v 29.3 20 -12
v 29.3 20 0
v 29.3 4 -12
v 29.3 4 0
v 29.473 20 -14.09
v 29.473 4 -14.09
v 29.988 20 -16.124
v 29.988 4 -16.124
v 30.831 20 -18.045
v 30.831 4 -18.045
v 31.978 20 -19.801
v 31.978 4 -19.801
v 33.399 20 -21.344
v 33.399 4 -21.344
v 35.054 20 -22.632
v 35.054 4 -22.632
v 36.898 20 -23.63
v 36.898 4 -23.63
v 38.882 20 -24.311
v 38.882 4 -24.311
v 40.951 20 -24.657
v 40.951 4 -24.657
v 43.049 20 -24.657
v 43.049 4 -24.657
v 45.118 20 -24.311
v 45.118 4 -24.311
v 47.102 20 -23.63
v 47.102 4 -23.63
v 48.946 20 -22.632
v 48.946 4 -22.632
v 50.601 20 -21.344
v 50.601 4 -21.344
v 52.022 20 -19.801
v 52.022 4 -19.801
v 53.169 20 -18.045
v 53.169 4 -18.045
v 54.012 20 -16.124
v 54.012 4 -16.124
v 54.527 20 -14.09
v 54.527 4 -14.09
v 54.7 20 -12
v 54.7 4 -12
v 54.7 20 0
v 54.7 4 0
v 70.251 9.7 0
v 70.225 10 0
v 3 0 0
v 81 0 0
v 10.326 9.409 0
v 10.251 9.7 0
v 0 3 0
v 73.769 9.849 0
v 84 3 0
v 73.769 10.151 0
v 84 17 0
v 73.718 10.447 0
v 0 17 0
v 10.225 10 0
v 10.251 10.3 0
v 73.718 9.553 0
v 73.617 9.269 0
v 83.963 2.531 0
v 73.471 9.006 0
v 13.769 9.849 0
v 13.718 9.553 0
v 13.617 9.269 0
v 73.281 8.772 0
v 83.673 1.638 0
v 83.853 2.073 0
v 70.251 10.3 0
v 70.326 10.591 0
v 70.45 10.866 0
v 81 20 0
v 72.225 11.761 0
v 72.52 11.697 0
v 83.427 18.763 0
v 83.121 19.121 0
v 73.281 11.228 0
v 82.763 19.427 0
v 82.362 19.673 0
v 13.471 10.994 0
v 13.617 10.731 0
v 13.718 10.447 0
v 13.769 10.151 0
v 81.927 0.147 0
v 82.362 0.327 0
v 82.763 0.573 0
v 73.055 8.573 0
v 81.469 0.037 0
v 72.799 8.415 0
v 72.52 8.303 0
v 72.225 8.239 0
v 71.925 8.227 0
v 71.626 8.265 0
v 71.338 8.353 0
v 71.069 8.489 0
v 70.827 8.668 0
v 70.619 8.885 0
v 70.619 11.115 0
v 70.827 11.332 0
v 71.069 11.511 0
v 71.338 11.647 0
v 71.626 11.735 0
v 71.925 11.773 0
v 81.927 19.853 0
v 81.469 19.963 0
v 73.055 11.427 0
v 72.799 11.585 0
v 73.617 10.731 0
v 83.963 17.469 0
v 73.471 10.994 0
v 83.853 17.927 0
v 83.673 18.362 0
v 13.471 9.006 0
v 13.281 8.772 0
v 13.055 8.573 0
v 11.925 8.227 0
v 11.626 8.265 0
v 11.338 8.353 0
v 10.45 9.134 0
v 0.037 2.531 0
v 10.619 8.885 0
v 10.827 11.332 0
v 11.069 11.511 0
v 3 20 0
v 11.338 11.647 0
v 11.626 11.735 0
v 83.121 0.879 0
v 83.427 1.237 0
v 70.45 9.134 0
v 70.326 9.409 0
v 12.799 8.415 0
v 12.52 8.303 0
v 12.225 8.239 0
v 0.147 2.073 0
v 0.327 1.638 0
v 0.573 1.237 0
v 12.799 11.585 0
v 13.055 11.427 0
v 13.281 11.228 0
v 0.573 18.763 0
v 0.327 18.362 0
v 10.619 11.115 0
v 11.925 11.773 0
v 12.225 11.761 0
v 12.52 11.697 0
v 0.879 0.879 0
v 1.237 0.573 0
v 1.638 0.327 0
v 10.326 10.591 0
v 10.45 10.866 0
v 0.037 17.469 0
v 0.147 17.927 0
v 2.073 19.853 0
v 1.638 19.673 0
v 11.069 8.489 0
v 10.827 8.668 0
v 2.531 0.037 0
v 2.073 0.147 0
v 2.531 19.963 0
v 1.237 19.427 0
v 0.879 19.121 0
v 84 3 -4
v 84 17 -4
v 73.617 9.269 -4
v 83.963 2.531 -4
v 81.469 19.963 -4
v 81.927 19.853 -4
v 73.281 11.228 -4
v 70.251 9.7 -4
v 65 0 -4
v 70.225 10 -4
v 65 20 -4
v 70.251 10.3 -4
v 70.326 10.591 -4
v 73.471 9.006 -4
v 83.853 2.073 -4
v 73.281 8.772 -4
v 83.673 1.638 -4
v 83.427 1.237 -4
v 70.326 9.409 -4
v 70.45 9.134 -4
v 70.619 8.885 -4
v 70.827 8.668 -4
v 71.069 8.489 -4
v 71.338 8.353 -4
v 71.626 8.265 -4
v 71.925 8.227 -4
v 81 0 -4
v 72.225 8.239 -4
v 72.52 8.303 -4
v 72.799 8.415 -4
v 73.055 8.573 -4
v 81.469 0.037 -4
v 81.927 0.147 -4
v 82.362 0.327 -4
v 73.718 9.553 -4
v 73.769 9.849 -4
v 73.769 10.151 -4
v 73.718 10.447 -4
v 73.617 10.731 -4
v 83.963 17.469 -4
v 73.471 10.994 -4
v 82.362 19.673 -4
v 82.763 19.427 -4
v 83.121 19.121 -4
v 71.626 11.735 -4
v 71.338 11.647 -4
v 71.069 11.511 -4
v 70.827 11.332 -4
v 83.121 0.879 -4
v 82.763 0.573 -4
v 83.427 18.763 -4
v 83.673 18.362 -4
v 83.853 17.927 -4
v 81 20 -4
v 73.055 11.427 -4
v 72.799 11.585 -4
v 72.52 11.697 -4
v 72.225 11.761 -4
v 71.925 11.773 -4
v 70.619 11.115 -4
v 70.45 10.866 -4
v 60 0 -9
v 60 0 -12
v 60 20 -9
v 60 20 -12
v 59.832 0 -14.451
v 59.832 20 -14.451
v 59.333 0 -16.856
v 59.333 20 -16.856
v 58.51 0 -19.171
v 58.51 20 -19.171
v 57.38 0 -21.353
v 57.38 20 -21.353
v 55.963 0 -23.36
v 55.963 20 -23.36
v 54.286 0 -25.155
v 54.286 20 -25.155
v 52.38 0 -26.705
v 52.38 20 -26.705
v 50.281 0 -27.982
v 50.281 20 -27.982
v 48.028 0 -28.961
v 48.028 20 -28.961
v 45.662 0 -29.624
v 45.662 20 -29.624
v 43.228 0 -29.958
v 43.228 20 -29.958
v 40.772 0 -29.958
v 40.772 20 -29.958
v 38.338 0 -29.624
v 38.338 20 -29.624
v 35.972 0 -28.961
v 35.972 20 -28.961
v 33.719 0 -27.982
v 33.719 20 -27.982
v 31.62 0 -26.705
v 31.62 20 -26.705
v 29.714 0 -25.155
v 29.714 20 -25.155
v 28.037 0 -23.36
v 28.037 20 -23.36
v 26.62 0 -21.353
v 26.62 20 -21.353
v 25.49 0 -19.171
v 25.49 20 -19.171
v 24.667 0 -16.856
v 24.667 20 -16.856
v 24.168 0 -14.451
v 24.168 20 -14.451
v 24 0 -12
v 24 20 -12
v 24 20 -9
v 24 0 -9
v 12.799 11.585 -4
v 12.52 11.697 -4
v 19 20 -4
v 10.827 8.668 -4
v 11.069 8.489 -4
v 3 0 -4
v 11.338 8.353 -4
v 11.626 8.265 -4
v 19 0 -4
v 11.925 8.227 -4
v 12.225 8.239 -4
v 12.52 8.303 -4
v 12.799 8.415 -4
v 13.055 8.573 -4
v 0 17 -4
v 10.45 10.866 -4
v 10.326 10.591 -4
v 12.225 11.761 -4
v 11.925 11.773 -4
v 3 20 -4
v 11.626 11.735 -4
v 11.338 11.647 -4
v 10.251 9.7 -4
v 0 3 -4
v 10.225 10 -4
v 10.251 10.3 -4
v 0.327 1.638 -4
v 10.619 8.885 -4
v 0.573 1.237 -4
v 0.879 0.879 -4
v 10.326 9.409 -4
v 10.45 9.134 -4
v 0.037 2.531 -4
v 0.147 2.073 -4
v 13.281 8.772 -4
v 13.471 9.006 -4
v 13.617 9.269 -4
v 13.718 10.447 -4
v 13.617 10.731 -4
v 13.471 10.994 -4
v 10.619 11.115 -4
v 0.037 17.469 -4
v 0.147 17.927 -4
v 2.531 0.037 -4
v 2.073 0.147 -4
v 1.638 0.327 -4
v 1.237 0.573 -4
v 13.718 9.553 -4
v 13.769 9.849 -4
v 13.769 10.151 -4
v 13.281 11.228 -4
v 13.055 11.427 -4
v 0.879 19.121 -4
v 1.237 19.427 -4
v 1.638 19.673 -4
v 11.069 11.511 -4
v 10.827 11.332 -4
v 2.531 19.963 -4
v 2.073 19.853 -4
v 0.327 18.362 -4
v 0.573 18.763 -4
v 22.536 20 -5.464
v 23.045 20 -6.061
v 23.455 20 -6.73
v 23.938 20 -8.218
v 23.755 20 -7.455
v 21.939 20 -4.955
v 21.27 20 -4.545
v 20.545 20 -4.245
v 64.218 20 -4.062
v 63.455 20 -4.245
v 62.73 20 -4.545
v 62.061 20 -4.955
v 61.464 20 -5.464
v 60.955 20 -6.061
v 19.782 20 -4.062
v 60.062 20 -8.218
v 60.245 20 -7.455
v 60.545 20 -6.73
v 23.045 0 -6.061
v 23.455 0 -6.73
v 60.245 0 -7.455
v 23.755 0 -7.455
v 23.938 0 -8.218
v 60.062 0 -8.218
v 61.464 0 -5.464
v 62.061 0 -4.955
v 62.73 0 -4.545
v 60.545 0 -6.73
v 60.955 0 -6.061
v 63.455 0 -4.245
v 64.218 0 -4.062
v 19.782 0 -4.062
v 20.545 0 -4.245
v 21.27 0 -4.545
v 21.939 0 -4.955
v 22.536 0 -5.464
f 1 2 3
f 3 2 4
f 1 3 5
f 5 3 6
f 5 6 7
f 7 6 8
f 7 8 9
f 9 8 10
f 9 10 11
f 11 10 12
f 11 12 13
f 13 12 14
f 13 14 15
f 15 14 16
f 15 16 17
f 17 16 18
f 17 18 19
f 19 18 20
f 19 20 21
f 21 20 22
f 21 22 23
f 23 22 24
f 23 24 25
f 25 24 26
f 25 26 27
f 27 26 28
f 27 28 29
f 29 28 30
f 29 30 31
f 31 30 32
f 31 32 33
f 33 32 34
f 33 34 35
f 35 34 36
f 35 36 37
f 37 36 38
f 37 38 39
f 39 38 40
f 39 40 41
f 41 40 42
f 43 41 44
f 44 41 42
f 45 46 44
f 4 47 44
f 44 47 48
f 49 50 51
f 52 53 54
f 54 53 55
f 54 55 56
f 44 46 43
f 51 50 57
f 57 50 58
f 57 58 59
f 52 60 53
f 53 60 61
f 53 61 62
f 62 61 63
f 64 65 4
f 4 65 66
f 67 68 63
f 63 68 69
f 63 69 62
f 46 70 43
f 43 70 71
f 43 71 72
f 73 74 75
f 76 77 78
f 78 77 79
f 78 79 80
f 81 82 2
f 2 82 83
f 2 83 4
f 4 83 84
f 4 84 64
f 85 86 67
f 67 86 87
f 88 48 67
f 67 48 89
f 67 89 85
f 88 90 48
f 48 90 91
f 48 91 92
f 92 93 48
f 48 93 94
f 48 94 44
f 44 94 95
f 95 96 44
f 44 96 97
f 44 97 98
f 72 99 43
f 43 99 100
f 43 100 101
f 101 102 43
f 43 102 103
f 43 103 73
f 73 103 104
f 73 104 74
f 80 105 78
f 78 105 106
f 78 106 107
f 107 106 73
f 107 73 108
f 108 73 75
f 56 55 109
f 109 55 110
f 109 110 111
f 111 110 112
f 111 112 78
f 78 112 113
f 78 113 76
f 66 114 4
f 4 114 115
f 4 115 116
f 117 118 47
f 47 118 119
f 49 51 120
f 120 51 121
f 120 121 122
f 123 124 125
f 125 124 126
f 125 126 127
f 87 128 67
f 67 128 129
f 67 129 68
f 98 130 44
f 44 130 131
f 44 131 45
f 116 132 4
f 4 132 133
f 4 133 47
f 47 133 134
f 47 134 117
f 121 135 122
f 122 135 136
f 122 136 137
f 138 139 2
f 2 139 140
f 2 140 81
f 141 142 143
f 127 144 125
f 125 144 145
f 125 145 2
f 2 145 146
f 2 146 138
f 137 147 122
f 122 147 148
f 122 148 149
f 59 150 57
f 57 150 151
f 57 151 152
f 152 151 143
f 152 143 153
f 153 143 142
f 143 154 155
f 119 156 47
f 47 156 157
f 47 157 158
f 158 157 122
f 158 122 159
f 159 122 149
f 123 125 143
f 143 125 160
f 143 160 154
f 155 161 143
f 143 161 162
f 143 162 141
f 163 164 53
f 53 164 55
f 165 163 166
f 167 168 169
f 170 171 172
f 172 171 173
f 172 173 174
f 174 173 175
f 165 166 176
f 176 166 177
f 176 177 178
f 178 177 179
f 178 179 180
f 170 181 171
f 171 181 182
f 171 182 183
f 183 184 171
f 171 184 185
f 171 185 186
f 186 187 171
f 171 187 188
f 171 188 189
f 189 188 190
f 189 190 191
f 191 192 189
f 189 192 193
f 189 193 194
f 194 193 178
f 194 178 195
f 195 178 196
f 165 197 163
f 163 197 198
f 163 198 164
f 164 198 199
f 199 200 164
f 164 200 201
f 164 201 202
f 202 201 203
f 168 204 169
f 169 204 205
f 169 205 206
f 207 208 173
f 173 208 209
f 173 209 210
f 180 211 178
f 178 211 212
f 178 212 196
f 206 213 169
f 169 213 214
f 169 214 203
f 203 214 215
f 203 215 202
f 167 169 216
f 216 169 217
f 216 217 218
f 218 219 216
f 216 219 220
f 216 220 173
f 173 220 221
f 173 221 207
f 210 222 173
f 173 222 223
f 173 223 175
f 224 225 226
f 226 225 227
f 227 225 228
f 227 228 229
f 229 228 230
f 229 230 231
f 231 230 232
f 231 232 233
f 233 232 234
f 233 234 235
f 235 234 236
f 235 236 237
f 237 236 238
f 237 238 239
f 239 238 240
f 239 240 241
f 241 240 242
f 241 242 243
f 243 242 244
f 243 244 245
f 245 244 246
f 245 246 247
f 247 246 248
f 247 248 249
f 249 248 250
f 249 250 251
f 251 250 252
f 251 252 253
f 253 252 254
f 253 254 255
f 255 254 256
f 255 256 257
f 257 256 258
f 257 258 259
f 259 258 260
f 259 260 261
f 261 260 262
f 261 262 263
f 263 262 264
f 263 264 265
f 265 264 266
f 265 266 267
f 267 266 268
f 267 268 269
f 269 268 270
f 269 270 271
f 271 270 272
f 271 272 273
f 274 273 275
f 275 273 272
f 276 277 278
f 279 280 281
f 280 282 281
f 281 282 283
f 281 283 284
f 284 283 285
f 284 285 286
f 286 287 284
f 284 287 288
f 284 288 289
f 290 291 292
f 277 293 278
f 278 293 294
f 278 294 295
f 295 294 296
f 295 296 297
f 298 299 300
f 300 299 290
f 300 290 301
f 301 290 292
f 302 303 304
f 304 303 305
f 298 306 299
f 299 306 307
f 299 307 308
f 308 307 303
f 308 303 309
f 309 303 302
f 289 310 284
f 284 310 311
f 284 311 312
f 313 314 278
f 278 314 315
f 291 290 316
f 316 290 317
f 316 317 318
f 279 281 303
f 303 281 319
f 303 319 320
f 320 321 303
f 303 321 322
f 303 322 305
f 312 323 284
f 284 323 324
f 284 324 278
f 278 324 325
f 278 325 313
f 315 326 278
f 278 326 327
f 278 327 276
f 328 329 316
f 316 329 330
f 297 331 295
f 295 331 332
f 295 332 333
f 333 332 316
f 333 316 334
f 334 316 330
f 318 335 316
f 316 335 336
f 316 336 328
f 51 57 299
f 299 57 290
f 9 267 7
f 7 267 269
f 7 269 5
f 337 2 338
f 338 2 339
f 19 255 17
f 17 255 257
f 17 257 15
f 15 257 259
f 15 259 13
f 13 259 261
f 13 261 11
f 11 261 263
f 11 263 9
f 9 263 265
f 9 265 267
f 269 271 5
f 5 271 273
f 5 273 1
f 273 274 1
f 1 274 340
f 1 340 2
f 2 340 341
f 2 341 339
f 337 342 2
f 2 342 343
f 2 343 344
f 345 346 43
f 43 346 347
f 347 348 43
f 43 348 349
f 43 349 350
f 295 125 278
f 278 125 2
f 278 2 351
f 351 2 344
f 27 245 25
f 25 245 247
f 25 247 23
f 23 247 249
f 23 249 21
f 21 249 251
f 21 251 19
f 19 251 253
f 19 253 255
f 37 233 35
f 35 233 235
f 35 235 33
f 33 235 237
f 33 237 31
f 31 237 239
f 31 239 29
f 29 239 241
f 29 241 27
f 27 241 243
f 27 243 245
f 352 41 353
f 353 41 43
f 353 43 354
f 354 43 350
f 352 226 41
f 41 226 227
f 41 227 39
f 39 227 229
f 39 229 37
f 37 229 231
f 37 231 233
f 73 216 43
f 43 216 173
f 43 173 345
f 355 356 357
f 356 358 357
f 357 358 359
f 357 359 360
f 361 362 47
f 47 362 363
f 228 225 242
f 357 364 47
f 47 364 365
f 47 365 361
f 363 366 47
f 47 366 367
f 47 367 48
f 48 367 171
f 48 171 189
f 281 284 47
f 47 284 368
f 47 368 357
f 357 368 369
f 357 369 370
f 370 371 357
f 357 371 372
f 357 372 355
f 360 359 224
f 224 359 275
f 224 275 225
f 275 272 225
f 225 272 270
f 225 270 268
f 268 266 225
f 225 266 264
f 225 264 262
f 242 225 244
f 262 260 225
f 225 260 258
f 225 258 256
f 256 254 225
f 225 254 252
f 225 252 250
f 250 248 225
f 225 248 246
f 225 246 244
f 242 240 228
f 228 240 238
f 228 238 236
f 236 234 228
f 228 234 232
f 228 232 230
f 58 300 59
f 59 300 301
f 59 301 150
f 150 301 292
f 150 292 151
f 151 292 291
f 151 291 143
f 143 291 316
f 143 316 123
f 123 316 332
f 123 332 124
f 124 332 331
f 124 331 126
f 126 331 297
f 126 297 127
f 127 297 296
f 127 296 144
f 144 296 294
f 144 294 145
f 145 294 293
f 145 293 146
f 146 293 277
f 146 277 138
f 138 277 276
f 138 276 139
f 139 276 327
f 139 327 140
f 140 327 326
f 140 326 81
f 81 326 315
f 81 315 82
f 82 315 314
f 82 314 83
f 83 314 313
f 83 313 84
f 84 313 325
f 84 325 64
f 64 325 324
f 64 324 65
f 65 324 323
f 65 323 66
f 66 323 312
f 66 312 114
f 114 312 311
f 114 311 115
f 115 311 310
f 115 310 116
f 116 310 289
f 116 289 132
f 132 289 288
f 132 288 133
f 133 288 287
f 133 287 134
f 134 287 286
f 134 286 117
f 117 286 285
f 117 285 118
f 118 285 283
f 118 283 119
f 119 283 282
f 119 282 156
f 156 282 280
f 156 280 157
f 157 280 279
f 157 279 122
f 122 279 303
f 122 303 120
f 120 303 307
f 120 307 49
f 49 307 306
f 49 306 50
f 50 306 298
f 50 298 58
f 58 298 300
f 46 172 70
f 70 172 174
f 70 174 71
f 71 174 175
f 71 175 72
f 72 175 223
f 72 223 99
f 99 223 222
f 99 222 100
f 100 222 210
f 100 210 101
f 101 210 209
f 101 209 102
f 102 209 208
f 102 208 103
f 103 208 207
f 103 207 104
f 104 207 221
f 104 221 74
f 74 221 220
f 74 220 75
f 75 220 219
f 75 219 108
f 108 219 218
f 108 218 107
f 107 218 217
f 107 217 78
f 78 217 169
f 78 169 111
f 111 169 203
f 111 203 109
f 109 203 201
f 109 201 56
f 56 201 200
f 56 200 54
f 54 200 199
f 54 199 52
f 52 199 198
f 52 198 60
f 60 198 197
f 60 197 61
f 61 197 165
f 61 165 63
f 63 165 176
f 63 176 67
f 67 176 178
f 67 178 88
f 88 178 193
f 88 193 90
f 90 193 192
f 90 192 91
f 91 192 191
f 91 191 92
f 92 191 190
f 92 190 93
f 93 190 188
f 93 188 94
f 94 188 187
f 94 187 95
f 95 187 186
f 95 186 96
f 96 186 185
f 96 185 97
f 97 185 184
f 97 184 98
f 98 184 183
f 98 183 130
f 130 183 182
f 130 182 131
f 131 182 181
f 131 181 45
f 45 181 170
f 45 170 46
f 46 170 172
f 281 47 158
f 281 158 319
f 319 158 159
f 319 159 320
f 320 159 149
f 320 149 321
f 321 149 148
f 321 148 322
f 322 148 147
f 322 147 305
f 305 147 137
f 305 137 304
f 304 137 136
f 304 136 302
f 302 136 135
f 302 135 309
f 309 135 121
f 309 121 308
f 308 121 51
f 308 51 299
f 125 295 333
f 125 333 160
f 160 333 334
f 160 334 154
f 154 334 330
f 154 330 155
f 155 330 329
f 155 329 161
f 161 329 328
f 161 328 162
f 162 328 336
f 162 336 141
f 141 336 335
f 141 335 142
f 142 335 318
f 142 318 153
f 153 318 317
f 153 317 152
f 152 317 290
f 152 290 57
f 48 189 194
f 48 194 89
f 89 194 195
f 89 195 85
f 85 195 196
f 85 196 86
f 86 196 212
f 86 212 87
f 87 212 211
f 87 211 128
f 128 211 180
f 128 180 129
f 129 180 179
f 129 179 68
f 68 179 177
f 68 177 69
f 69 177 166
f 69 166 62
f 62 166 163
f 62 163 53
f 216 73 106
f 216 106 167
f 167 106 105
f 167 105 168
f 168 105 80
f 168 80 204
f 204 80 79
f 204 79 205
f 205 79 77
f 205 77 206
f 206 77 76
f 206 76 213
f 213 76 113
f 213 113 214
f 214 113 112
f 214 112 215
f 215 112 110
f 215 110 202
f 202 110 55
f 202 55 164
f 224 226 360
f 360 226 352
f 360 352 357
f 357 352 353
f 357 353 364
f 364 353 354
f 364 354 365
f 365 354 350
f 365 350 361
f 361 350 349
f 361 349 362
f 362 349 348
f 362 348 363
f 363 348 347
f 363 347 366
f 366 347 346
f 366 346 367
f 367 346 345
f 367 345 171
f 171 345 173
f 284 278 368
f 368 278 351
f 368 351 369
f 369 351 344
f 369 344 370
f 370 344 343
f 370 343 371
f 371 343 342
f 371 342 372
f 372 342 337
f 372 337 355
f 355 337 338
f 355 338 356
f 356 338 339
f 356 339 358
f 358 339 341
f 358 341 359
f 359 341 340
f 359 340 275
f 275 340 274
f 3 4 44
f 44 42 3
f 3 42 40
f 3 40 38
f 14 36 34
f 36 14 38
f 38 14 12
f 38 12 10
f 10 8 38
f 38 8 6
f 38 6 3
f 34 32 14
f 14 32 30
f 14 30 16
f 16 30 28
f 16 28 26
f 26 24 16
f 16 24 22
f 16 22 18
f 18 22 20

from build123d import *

# Parameters (mm, degrees)
BOSS_EXTRUDE1_DEPTH = 20
SKETCH2_R           = 1.775
CUT_EXTRUDE1_DEPTH  = 5
FILLET1_R           = 3
FILLET2_R           = 5
BOSS_EXTRUDE2_DEPTH = 4


with BuildPart() as part:
    # Sketch1 → Boss-Extrude1 (new body)
    with BuildSketch(Plane(origin=(0, 0, 0), x_dir=(1, 0, 0), z_dir=(0, 1, 0))):
        with BuildLine():
            Line((0, 0), (0, 4))
            Line((0, 4), (24, 4))
            Line((24, 4), (24, 12))
            ThreePointArc((24, 12), (42, 30), (60, 12))
            Line((60, 12), (60, 4))
            Line((60, 4), (84, 4))
            Line((84, 4), (84, 0))
            Line((84, 0), (54.7, 0))
            Line((54.7, 0), (54.7, 12))
            ThreePointArc((54.7, 12), (42, 24.7), (29.3, 12))
            Line((29.3, 12), (29.3, 0))
            Line((29.3, 0), (0, 0))
        make_face()
    extrude(amount=BOSS_EXTRUDE1_DEPTH)

    # Sketch2 → Cut-Extrude1 (cut, through all)
    with BuildSketch(Plane(origin=(0, 0, -4), x_dir=(-1, 0, 0), z_dir=(0, 0, -1))):
        with Locations((-72, 10)):
            Circle(SKETCH2_R)
        with Locations((-12, 10)):
            Circle(SKETCH2_R)
    extrude(amount=-CUT_EXTRUDE1_DEPTH, mode=Mode.SUBTRACT)

    # Fillet1
    fillet1_edges = [part.edges().sort_by_distance(p)[0] for p in [
        (0, 0, -2),
        (84, 0, -2),
        (84, 20, -2),
        (0, 20, -2),
    ]]
    fillet(fillet1_edges, radius=FILLET1_R)

    # Fillet2
    fillet2_edges = [part.edges().sort_by_distance(p)[0] for p in [
        (24, 10, -4),
        (60, 10, -4),
    ]]
    fillet(fillet2_edges, radius=FILLET2_R)

    # Sketch4 → Boss-Extrude2 (add)
    with BuildSketch(Plane.XZ):
        with BuildLine():
            Line((29.3, 0), (54.7, 0))
            Line((54.7, 0), (54.7, -12))
            ThreePointArc((54.7, -12), (42, -24.7), (29.3, -12))
            Line((29.3, -12), (29.3, 0))
        make_face()
    extrude(amount=-BOSS_EXTRUDE2_DEPTH)


solid = part.part
